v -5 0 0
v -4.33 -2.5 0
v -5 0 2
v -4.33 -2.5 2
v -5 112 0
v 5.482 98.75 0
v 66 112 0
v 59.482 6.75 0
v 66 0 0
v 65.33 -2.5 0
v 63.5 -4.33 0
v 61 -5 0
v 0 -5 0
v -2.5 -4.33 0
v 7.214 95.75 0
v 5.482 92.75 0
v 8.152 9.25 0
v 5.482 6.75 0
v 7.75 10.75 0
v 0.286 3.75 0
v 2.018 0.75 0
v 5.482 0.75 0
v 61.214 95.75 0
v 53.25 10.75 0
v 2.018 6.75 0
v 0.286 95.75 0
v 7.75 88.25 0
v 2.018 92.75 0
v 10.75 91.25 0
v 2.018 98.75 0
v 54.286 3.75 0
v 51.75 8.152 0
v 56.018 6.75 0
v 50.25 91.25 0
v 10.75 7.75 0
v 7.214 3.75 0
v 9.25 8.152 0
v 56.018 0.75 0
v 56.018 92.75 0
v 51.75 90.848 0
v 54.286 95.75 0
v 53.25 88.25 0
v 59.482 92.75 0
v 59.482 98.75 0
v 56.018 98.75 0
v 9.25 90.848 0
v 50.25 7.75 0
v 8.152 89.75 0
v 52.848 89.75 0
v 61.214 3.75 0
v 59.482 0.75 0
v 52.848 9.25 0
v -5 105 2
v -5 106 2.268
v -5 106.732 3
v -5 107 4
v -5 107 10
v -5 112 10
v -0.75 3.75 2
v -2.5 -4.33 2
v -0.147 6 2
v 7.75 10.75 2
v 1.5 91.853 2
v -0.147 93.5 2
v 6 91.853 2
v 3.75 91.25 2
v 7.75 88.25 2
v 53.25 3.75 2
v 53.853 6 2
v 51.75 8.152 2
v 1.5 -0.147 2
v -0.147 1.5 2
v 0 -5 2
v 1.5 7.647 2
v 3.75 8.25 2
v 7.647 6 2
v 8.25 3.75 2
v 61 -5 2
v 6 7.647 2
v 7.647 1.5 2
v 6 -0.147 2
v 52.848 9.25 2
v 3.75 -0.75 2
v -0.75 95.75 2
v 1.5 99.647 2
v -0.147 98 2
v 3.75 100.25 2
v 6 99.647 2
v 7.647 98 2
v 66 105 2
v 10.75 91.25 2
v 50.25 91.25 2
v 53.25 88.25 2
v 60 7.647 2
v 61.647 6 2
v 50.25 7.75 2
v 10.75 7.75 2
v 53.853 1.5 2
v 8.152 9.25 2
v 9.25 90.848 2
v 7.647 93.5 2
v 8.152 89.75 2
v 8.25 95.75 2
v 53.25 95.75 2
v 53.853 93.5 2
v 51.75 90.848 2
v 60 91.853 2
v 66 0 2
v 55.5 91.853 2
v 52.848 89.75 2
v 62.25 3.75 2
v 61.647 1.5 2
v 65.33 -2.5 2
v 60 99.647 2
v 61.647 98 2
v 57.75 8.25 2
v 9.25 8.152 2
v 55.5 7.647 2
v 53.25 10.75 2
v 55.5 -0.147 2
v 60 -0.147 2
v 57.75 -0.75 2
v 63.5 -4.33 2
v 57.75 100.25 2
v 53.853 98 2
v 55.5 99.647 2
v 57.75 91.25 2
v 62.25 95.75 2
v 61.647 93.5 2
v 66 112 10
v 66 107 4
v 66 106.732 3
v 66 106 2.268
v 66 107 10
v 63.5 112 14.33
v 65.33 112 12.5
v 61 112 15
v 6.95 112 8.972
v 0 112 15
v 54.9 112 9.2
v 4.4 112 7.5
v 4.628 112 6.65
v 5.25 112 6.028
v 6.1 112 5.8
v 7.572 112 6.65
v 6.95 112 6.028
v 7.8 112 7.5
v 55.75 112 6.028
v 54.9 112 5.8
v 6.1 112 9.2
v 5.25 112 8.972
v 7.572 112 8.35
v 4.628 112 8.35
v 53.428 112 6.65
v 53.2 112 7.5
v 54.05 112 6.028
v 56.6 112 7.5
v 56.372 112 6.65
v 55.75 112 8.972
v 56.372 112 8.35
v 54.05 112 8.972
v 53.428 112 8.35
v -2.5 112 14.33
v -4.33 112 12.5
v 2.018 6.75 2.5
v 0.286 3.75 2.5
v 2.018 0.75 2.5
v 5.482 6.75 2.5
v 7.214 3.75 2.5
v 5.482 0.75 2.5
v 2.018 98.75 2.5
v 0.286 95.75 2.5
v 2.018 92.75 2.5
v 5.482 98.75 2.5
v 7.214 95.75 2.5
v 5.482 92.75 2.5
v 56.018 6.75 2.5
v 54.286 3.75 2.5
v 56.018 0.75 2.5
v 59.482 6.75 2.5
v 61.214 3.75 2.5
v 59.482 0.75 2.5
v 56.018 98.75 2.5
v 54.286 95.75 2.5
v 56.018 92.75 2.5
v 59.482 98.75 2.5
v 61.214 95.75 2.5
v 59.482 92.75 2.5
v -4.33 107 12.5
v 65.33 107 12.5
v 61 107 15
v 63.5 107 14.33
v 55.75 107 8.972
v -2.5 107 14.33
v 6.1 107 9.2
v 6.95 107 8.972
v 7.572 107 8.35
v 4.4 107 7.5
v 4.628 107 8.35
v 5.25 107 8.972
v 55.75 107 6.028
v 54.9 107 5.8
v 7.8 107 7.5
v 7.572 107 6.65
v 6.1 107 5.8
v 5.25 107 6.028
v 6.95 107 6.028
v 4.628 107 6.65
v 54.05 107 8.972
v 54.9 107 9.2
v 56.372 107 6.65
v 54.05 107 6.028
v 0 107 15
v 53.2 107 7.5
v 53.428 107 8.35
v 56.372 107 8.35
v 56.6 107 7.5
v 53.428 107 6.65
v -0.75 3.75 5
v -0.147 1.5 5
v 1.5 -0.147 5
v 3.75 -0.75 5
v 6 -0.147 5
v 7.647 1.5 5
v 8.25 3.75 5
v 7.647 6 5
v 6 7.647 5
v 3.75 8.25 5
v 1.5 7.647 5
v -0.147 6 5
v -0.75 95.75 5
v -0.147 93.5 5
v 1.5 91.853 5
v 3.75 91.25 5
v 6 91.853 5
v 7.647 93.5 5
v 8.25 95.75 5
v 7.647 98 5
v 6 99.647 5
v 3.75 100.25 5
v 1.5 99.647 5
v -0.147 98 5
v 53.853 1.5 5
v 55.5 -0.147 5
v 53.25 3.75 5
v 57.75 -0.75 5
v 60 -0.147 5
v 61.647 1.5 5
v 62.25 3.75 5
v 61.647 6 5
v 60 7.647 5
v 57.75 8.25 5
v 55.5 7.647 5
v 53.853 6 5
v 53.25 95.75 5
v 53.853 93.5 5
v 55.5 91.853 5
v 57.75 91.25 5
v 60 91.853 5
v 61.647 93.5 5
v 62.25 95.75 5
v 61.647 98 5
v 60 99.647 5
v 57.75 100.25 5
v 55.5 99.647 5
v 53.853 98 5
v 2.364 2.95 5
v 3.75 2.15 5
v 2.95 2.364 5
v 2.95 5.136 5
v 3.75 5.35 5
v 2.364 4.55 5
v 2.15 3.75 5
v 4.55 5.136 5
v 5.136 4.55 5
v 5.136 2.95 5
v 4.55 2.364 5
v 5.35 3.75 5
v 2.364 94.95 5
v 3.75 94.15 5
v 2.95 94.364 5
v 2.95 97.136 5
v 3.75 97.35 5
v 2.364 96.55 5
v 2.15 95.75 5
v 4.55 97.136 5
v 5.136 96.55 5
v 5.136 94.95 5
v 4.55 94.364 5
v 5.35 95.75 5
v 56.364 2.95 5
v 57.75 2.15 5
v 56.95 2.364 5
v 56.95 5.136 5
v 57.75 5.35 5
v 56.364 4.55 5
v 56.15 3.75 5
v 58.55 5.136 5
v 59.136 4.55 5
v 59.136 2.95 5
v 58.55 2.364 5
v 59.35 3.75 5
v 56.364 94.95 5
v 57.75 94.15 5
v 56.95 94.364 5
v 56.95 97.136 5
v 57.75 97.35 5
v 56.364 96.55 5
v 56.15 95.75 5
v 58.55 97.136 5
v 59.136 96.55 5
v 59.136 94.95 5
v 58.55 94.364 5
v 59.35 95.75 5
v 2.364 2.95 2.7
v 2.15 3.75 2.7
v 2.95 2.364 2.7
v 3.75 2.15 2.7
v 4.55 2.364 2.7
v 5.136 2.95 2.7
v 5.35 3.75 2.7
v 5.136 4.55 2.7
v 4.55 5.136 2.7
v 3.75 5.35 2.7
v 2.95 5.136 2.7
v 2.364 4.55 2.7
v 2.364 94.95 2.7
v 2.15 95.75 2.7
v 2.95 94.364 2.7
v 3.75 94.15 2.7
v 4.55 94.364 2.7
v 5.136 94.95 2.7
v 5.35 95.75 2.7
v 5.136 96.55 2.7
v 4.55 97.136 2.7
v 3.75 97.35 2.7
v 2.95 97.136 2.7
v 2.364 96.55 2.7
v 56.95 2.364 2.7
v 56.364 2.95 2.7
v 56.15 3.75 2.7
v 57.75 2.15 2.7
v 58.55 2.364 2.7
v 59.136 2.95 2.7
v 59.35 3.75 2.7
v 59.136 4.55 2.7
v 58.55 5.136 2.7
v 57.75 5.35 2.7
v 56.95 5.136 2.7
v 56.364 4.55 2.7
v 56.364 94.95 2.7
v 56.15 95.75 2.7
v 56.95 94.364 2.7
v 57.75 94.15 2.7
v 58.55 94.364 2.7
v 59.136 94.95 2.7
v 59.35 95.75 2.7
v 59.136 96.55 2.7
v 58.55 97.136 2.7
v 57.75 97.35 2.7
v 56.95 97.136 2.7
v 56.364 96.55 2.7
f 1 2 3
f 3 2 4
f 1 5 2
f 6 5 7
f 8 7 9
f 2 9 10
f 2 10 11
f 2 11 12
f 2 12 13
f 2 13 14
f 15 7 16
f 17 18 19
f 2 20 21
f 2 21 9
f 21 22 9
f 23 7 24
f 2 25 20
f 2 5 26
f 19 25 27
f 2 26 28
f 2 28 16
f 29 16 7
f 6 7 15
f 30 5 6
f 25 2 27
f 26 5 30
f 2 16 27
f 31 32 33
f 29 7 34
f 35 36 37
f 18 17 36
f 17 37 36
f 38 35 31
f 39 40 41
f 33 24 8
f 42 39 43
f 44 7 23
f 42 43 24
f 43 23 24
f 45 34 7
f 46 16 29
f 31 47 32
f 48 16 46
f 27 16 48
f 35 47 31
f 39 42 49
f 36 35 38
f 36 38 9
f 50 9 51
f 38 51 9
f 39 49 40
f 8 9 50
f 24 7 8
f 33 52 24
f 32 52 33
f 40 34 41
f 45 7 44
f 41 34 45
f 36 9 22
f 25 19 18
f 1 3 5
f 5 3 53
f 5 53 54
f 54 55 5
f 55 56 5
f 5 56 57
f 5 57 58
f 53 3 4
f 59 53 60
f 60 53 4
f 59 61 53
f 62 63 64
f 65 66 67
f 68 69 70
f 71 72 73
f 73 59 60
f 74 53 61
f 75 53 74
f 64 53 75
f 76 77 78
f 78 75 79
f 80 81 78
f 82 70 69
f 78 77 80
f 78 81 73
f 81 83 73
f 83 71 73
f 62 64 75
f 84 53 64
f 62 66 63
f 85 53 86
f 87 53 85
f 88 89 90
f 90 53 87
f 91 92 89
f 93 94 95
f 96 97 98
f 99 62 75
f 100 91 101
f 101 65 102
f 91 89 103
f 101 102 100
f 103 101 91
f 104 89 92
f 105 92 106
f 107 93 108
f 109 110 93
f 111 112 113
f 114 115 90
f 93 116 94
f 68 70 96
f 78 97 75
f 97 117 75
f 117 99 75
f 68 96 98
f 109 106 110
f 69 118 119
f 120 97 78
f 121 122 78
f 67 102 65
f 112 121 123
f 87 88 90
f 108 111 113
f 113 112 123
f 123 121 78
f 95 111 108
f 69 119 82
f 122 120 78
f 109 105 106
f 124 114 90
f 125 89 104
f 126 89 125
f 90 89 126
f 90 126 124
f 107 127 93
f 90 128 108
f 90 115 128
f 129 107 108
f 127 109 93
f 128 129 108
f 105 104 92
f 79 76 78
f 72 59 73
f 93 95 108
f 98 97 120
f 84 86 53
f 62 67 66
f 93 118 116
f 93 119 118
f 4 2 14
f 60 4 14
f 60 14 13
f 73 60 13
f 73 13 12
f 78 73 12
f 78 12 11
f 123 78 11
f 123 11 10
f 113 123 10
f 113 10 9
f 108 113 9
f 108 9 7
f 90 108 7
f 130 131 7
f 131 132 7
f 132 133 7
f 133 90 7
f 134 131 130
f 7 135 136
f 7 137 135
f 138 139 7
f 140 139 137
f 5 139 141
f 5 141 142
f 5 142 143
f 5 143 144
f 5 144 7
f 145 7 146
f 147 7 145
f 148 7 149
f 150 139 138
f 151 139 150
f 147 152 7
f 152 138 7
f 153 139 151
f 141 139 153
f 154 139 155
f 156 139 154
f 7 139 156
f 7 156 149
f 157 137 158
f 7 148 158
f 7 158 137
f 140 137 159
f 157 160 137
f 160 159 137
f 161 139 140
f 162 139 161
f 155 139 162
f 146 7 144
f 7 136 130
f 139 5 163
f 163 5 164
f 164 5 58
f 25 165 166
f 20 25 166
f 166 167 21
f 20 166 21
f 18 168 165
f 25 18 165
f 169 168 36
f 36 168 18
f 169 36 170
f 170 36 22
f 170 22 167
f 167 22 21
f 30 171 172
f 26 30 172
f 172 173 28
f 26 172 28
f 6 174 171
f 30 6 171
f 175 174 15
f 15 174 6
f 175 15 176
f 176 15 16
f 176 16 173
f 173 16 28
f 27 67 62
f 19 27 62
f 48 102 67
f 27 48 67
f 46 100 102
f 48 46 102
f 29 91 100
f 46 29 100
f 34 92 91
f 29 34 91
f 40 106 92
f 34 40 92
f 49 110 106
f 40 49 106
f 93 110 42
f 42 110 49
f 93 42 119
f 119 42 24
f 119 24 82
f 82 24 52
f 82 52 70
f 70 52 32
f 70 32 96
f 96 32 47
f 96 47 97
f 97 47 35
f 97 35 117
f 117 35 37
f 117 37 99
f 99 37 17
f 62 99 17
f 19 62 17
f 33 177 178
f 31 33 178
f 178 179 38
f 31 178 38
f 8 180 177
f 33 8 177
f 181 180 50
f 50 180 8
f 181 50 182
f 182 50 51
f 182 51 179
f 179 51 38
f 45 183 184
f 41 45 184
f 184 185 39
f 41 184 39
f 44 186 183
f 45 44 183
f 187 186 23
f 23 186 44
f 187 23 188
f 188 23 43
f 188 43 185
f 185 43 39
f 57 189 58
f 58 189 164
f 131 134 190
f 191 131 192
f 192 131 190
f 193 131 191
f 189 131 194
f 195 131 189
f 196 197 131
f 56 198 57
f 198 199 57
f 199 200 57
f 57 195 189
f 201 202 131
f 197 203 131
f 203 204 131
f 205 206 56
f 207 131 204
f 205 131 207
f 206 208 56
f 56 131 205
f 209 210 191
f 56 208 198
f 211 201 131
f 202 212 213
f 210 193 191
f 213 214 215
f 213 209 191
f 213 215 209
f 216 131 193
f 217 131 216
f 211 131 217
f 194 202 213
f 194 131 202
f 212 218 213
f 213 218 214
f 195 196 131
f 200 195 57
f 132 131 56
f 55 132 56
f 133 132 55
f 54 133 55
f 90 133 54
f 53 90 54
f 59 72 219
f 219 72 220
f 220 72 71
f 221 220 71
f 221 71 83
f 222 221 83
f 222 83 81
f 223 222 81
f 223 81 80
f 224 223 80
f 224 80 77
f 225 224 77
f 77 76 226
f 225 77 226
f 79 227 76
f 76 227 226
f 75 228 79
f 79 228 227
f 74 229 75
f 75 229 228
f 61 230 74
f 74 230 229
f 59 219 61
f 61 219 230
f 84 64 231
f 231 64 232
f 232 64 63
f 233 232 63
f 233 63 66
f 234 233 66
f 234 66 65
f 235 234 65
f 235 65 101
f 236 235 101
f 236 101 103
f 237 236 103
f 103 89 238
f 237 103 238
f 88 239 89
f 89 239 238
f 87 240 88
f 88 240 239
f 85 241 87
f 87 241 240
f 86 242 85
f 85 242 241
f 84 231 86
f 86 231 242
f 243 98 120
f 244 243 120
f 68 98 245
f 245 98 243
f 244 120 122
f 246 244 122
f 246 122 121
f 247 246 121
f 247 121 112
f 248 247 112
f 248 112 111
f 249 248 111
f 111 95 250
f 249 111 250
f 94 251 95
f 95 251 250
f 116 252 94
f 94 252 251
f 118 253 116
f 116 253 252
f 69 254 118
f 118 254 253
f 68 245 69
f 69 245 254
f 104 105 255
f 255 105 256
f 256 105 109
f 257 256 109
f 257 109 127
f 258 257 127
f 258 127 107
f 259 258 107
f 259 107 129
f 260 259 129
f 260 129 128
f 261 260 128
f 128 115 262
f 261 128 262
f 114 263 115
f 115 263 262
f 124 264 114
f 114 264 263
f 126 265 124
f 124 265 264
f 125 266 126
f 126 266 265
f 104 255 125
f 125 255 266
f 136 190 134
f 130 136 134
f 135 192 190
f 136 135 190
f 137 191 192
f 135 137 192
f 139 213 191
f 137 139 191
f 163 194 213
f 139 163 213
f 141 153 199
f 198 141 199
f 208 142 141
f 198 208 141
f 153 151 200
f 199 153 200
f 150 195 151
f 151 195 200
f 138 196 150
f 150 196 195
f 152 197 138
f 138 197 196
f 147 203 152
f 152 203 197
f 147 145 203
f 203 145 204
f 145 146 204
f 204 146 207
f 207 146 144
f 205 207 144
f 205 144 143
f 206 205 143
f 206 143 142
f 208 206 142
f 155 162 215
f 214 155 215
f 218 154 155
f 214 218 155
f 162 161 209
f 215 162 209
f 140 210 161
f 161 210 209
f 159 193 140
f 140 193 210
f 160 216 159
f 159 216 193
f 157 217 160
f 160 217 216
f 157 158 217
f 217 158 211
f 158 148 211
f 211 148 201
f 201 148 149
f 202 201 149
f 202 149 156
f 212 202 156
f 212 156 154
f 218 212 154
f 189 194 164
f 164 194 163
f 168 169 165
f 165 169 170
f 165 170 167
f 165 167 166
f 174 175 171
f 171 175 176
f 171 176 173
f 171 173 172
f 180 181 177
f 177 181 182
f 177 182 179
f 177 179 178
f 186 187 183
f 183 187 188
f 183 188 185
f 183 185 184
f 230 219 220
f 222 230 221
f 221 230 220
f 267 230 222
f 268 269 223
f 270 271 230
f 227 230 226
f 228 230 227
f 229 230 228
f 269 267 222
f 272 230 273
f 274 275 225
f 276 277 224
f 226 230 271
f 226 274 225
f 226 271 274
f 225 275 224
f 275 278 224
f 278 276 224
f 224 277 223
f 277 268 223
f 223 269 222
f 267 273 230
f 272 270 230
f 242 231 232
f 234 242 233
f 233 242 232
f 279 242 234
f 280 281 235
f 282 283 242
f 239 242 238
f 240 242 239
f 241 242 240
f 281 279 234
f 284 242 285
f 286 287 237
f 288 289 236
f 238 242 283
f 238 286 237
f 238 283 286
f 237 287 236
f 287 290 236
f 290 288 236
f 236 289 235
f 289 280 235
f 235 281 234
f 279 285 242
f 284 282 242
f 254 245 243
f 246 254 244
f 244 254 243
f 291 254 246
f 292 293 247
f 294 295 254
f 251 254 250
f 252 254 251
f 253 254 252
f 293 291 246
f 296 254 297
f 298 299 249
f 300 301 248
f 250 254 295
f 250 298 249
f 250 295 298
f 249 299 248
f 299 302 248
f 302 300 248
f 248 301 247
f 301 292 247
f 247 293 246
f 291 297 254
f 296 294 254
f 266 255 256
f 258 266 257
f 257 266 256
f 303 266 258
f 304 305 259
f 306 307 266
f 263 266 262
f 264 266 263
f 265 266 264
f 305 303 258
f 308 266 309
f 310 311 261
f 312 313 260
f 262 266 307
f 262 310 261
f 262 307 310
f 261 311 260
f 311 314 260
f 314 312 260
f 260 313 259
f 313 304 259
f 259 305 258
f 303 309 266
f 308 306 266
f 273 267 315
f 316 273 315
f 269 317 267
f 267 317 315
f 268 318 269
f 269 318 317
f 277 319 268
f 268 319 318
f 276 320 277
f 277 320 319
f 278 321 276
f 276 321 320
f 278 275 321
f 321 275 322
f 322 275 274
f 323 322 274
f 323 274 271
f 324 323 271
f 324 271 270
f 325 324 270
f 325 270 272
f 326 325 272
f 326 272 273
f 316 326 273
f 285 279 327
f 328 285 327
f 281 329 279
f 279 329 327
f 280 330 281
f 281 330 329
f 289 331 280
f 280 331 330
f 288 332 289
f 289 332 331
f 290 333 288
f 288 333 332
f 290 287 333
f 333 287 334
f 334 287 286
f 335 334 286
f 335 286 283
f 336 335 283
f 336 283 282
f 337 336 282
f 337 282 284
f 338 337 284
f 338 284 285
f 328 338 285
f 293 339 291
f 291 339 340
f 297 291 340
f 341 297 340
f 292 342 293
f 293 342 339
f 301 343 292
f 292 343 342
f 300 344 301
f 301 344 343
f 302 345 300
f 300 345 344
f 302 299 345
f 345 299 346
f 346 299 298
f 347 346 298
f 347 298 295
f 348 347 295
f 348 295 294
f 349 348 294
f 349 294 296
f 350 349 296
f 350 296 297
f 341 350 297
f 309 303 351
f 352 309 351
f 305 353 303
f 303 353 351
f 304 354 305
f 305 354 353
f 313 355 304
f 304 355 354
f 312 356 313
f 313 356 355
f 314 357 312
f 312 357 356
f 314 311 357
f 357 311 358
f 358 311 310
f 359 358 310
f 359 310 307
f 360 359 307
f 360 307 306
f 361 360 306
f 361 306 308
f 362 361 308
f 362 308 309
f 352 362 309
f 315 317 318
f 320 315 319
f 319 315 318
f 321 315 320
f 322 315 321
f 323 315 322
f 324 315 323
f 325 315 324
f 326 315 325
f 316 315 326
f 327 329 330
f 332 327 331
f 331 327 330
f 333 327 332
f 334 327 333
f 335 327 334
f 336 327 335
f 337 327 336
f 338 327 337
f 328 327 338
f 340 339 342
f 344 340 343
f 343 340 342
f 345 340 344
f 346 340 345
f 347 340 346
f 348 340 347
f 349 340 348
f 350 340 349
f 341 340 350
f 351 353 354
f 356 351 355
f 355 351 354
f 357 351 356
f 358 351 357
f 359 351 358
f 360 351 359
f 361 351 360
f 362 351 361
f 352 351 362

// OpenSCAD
// JellyB Tech 12th November 2013
// Play with at your own peril...

base_length =61;
base_width  =100;
m3_bolt_diameter =1.6;
m3_nut_size = 6;
m3_nut_height = 2.5;
initial_hole_offset = 3.75;
x_hole_offset = 54;
y_hole_offset = 92;
extrusion_height = 15;
$fn=12;

difference(){
	union(){
		base();
		rear_mount();
		}
	board_holes();
	extrusion_holes();
	cut_centre();
}

// Centre cutout

module cut_centre(){
	hull(){
		translate(v=[initial_hole_offset + 7,initial_hole_offset + 7,0])
		cylinder(r=3,h=4);
		translate(v=[x_hole_offset - initial_hole_offset,initial_hole_offset + 7,0])
		cylinder(r=3,h=4);
		translate(v=[x_hole_offset - initial_hole_offset,y_hole_offset - initial_hole_offset,0])
		cylinder(r=3,h=4);
		translate(v=[initial_hole_offset + 7,y_hole_offset - initial_hole_offset,0])
		cylinder(r=3,h=4);
		}
}
	
// Extrusion mount holes

module extrusion_holes(){
	translate(v=[base_length * 0.1,base_width + 13,extrusion_height/2])
	rotate(a=[90,0,0])
	cylinder(r=m3_bolt_diameter +0.1 ,h=7);
	translate(v=[base_length * 0.9,base_width + 13,extrusion_height/2])
	rotate(a=[90,0,0])
	cylinder(r=m3_bolt_diameter +0.1 ,h=7);
}

// Printrboard mount holes

module board_holes(){
	translate(v=[initial_hole_offset,initial_hole_offset,m3_nut_height + 0.2])
	cylinder(r=m3_bolt_diameter,h=6);
	translate(v=[initial_hole_offset,initial_hole_offset,0])
	cylinder(r=m3_nut_size / 2 / cos(180 / 6),h=m3_nut_height, $fn=6);
	translate(v=[initial_hole_offset + x_hole_offset,initial_hole_offset,m3_nut_height + 0.2])
	cylinder(r=m3_bolt_diameter,h=6);
	translate(v=[initial_hole_offset + x_hole_offset,initial_hole_offset,0])
	cylinder(r=m3_nut_size / 2 / cos(180 / 6),h=m3_nut_height, $fn=6);
	translate(v=[initial_hole_offset,initial_hole_offset + y_hole_offset,m3_nut_height + 0.2])
	cylinder(r=m3_bolt_diameter,h=6);
	translate(v=[initial_hole_offset,initial_hole_offset + y_hole_offset,0])
	cylinder(r=m3_nut_size / 2 / cos(180 / 6),h=m3_nut_height, $fn=6);
	translate(v=[initial_hole_offset + x_hole_offset,initial_hole_offset + y_hole_offset,m3_nut_height + 0.2])
	cylinder(r=m3_bolt_diameter,h=6);
	translate(v=[initial_hole_offset + x_hole_offset,initial_hole_offset + y_hole_offset,0])
	cylinder(r=m3_nut_size / 2 / cos(180 / 6),h=m3_nut_height, $fn=6);
}

// Base
module base(){
	hull(){
		cylinder(r=5,h=2);
		translate(v=[base_length,0,0])
		cylinder(r=5,h=2);
		translate(v=[-5,base_width-1,0])
		cube(size=[base_length + 10,6,2]);
		}
	translate(v=[initial_hole_offset,initial_hole_offset,0])
	cylinder(r=4.5,h=5);
	translate(v=[initial_hole_offset + x_hole_offset,initial_hole_offset,0])
	cylinder(r=4.5,h=5);
	translate(v=[initial_hole_offset,initial_hole_offset + y_hole_offset,0])
	cylinder(r=4.5,h=5);
	translate(v=[initial_hole_offset + x_hole_offset,initial_hole_offset + y_hole_offset,0])
	cylinder(r=4.5,h=5);
}

// Rear Mount
module rear_mount(){
	difference(){
		hull(){
			translate(v=[-5,base_width + 5,0])
			cube(size=[base_length + 10,7,extrusion_height - 5]);
			translate(v=[0,base_width + 12,extrusion_height - 5])
			rotate(a=[90,0,0])
			cylinder(r=5,h=5);
			translate(v=[base_length,base_width + 12,extrusion_height - 5])
			rotate(a=[90,0,0])
			cylinder(r=5,h=5);
			}
		translate(v=[-6,base_width + 5,4])
		rotate(a=[0,90,0])
		cylinder(r=2,h=base_length + 15);
		translate(v=[-6,base_width + 2,4])
		cube(size=[base_length + 15,5,extrusion_height]);
		}
}
